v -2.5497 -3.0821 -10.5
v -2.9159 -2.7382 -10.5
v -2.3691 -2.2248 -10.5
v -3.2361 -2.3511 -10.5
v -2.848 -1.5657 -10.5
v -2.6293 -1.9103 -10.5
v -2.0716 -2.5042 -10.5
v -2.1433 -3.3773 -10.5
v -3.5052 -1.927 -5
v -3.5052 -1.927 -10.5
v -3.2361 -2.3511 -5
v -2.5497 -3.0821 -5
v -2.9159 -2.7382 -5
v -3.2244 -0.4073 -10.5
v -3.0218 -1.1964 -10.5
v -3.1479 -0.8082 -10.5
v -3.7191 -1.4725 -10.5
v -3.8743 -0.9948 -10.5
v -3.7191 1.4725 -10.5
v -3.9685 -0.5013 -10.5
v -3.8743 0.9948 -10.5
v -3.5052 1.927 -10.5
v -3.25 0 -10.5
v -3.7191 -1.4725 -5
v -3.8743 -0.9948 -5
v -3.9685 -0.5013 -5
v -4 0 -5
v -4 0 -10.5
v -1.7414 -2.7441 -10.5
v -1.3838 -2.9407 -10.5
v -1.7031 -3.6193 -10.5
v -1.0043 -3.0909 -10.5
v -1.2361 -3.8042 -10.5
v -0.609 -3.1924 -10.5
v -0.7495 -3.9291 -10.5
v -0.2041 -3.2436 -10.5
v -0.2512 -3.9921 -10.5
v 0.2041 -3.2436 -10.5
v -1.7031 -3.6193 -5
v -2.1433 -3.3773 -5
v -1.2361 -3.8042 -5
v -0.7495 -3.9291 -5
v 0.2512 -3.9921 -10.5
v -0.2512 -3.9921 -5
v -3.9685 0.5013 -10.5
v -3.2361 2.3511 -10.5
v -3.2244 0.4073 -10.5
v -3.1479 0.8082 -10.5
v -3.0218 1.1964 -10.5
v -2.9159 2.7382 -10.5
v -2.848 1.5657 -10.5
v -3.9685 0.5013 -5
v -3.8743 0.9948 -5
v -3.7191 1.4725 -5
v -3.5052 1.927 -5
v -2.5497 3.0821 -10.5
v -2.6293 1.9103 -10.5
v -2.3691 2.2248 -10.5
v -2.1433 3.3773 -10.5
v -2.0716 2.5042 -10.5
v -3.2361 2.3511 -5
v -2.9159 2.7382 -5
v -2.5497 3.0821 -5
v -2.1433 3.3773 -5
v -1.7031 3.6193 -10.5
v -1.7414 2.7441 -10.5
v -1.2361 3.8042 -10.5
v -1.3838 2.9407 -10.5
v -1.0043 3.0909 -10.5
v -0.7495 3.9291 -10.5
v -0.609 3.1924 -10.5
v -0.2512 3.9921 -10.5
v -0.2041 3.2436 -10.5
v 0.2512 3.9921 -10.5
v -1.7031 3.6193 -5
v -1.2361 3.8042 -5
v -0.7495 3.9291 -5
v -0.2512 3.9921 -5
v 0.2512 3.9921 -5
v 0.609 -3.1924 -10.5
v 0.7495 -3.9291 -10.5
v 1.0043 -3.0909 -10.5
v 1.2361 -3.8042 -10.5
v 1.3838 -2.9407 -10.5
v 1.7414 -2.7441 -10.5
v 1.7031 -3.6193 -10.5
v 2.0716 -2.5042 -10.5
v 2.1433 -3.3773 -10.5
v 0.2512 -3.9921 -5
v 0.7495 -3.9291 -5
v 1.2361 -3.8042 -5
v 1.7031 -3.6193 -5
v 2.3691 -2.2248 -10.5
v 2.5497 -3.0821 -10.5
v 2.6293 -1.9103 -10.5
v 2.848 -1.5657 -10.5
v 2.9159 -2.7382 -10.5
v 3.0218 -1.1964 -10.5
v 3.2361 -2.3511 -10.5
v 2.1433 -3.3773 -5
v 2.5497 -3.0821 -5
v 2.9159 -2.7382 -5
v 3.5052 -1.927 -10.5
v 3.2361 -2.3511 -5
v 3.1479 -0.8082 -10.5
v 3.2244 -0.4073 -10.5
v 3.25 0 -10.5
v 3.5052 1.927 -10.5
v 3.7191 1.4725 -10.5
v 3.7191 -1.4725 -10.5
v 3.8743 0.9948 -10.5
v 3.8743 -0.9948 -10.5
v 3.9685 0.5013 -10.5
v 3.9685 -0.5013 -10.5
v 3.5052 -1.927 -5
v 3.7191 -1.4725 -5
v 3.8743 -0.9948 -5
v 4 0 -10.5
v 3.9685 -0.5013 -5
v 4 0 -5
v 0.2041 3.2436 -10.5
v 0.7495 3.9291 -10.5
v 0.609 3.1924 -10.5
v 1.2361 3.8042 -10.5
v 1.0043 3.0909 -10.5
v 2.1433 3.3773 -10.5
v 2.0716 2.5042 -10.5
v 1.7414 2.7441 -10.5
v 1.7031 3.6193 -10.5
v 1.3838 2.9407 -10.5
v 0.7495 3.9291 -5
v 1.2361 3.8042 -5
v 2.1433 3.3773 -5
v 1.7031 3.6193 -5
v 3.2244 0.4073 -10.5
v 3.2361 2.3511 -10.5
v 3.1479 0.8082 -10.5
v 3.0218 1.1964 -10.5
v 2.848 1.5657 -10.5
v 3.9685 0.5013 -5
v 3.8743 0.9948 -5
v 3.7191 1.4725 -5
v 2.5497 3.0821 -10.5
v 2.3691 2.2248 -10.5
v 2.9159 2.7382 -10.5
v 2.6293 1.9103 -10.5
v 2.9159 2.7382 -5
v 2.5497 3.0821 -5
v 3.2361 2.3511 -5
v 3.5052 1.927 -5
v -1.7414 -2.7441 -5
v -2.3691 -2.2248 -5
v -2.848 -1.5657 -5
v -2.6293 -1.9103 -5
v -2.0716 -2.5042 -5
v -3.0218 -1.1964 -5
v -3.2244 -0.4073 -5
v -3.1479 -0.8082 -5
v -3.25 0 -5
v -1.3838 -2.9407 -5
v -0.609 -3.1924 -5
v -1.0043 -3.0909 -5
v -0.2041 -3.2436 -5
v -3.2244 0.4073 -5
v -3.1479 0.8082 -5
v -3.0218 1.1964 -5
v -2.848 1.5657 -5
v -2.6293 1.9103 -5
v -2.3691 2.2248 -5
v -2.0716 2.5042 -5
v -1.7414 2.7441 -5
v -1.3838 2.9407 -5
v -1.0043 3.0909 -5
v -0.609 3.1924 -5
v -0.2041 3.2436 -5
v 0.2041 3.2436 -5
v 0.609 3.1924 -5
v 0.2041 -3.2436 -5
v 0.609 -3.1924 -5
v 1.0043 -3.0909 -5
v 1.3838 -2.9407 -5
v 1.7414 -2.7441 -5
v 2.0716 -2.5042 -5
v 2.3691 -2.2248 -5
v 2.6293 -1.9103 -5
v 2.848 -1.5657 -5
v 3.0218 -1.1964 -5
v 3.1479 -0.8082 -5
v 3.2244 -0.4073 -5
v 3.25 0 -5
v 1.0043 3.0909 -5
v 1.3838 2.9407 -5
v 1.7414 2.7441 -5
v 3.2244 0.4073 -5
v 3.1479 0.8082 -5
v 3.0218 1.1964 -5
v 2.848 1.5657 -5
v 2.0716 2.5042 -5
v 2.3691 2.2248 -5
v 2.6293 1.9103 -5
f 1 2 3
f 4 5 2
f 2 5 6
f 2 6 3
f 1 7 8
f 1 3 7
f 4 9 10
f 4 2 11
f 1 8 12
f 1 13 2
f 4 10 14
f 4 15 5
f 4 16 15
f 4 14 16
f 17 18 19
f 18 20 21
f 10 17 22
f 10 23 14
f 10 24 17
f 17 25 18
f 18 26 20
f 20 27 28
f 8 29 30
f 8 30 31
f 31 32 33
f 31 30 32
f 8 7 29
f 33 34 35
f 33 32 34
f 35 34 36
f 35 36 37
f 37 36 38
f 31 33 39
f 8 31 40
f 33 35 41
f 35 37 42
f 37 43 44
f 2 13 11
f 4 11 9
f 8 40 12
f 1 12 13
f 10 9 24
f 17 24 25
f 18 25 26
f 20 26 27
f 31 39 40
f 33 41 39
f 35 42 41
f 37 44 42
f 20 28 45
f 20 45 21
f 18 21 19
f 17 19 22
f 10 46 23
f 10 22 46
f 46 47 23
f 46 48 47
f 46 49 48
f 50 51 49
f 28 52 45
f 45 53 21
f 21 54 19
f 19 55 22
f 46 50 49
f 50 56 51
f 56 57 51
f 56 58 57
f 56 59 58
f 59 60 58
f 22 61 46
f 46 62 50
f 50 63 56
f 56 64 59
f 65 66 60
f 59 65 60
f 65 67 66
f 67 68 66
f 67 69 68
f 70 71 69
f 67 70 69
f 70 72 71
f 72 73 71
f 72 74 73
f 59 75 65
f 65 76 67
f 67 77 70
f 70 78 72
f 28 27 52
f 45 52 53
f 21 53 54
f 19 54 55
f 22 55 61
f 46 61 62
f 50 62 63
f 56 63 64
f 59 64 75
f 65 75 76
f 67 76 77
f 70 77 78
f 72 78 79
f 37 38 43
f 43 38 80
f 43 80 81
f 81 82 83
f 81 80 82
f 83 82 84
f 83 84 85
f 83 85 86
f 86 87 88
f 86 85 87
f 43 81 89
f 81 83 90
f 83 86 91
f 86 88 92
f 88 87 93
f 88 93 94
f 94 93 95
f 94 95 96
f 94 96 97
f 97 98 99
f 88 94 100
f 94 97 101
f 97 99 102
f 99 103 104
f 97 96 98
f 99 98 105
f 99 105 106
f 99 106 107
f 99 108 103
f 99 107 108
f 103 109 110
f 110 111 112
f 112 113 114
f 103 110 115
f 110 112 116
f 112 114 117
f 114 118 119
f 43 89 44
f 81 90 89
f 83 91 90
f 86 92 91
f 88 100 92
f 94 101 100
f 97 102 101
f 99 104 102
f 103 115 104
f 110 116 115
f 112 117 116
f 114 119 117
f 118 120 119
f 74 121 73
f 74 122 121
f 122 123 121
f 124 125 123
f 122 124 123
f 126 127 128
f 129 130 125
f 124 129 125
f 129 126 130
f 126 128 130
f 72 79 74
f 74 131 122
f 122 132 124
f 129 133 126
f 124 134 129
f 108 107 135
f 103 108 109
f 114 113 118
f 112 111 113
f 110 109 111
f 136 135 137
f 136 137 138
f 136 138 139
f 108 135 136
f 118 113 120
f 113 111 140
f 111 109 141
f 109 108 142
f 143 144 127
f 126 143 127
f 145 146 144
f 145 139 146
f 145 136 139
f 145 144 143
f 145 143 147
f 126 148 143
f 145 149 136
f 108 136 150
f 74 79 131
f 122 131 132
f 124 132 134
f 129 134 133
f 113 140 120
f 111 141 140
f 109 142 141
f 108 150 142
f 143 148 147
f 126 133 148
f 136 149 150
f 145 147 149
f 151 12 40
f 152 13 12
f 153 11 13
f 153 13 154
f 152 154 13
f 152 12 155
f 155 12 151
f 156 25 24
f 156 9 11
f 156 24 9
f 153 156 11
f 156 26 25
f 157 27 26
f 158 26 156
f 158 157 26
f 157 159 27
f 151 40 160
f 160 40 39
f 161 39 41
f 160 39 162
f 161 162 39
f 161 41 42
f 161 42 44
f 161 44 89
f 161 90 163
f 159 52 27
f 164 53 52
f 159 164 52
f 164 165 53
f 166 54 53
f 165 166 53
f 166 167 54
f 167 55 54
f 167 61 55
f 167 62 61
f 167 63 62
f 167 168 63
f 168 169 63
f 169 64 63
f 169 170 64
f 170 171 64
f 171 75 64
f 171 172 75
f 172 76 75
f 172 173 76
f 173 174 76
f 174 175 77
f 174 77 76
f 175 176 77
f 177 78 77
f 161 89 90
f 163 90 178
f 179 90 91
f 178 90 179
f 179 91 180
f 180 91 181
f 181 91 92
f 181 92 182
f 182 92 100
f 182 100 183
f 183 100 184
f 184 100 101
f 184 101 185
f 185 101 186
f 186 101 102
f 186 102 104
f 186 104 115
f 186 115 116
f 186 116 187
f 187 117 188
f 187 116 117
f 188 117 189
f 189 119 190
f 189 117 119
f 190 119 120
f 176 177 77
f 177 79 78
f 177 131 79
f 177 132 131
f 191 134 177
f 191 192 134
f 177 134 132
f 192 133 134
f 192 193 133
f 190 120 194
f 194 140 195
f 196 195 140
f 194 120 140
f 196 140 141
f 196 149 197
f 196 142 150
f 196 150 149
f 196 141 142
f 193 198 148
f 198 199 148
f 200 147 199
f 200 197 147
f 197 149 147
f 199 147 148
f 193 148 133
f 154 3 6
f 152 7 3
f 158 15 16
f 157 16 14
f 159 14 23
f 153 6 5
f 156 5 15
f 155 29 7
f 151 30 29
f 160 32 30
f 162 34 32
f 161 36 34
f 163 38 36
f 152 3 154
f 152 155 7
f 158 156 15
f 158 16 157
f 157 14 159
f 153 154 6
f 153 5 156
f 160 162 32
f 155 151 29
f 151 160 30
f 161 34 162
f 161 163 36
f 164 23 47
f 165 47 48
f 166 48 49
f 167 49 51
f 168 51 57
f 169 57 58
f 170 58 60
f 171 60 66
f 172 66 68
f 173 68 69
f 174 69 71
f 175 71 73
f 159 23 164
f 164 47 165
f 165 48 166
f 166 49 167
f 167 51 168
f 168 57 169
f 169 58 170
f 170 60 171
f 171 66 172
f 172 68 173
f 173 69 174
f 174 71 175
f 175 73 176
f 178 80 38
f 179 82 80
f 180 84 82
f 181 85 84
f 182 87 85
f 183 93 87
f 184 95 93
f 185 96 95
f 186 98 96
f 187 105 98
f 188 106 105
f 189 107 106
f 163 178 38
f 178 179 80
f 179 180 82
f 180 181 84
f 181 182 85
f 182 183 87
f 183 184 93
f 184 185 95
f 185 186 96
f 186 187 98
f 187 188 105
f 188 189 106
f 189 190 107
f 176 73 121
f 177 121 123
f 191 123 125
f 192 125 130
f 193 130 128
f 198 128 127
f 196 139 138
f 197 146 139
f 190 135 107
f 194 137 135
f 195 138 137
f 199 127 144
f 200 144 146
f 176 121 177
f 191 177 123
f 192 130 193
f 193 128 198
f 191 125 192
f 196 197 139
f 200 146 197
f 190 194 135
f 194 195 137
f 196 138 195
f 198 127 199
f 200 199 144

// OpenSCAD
$fn = 50;

difference() {
	union() {
		translate(v = [0, 0, -10.5]) {
			cylinder(h = 13.5, r = 4.0);
		}
		#translate(v = [0, 0, -12.0]) {
			cylinder(h = 12, r = 2.875);
		}
	}
	union() {
		translate(v = [0, 0, 0]) {
			rotate(a = [0, 0, 0]) {
				difference() {
					union() {
						translate(v = [0, 0, -5]) {
							linear_extrude(height = 5) {
								polygon(points = [[5.914249999999999, 0.0], [2.957125, 5.1218907443321156], [-2.9571249999999982, 5.1218907443321156], [-5.914249999999999, 7.242867331857232e-16], [-2.9571250000000022, -5.121890744332115], [2.9571249999999956, -5.121890744332118]]);
							}
						}
					}
					union();
				}
			}
		}
		#cylinder(h = 3, r = 6.25);
		#translate(v = [0, 0, -100.0]) {
			cylinder(h = 200, r = 3.25);
		}
	}
}
